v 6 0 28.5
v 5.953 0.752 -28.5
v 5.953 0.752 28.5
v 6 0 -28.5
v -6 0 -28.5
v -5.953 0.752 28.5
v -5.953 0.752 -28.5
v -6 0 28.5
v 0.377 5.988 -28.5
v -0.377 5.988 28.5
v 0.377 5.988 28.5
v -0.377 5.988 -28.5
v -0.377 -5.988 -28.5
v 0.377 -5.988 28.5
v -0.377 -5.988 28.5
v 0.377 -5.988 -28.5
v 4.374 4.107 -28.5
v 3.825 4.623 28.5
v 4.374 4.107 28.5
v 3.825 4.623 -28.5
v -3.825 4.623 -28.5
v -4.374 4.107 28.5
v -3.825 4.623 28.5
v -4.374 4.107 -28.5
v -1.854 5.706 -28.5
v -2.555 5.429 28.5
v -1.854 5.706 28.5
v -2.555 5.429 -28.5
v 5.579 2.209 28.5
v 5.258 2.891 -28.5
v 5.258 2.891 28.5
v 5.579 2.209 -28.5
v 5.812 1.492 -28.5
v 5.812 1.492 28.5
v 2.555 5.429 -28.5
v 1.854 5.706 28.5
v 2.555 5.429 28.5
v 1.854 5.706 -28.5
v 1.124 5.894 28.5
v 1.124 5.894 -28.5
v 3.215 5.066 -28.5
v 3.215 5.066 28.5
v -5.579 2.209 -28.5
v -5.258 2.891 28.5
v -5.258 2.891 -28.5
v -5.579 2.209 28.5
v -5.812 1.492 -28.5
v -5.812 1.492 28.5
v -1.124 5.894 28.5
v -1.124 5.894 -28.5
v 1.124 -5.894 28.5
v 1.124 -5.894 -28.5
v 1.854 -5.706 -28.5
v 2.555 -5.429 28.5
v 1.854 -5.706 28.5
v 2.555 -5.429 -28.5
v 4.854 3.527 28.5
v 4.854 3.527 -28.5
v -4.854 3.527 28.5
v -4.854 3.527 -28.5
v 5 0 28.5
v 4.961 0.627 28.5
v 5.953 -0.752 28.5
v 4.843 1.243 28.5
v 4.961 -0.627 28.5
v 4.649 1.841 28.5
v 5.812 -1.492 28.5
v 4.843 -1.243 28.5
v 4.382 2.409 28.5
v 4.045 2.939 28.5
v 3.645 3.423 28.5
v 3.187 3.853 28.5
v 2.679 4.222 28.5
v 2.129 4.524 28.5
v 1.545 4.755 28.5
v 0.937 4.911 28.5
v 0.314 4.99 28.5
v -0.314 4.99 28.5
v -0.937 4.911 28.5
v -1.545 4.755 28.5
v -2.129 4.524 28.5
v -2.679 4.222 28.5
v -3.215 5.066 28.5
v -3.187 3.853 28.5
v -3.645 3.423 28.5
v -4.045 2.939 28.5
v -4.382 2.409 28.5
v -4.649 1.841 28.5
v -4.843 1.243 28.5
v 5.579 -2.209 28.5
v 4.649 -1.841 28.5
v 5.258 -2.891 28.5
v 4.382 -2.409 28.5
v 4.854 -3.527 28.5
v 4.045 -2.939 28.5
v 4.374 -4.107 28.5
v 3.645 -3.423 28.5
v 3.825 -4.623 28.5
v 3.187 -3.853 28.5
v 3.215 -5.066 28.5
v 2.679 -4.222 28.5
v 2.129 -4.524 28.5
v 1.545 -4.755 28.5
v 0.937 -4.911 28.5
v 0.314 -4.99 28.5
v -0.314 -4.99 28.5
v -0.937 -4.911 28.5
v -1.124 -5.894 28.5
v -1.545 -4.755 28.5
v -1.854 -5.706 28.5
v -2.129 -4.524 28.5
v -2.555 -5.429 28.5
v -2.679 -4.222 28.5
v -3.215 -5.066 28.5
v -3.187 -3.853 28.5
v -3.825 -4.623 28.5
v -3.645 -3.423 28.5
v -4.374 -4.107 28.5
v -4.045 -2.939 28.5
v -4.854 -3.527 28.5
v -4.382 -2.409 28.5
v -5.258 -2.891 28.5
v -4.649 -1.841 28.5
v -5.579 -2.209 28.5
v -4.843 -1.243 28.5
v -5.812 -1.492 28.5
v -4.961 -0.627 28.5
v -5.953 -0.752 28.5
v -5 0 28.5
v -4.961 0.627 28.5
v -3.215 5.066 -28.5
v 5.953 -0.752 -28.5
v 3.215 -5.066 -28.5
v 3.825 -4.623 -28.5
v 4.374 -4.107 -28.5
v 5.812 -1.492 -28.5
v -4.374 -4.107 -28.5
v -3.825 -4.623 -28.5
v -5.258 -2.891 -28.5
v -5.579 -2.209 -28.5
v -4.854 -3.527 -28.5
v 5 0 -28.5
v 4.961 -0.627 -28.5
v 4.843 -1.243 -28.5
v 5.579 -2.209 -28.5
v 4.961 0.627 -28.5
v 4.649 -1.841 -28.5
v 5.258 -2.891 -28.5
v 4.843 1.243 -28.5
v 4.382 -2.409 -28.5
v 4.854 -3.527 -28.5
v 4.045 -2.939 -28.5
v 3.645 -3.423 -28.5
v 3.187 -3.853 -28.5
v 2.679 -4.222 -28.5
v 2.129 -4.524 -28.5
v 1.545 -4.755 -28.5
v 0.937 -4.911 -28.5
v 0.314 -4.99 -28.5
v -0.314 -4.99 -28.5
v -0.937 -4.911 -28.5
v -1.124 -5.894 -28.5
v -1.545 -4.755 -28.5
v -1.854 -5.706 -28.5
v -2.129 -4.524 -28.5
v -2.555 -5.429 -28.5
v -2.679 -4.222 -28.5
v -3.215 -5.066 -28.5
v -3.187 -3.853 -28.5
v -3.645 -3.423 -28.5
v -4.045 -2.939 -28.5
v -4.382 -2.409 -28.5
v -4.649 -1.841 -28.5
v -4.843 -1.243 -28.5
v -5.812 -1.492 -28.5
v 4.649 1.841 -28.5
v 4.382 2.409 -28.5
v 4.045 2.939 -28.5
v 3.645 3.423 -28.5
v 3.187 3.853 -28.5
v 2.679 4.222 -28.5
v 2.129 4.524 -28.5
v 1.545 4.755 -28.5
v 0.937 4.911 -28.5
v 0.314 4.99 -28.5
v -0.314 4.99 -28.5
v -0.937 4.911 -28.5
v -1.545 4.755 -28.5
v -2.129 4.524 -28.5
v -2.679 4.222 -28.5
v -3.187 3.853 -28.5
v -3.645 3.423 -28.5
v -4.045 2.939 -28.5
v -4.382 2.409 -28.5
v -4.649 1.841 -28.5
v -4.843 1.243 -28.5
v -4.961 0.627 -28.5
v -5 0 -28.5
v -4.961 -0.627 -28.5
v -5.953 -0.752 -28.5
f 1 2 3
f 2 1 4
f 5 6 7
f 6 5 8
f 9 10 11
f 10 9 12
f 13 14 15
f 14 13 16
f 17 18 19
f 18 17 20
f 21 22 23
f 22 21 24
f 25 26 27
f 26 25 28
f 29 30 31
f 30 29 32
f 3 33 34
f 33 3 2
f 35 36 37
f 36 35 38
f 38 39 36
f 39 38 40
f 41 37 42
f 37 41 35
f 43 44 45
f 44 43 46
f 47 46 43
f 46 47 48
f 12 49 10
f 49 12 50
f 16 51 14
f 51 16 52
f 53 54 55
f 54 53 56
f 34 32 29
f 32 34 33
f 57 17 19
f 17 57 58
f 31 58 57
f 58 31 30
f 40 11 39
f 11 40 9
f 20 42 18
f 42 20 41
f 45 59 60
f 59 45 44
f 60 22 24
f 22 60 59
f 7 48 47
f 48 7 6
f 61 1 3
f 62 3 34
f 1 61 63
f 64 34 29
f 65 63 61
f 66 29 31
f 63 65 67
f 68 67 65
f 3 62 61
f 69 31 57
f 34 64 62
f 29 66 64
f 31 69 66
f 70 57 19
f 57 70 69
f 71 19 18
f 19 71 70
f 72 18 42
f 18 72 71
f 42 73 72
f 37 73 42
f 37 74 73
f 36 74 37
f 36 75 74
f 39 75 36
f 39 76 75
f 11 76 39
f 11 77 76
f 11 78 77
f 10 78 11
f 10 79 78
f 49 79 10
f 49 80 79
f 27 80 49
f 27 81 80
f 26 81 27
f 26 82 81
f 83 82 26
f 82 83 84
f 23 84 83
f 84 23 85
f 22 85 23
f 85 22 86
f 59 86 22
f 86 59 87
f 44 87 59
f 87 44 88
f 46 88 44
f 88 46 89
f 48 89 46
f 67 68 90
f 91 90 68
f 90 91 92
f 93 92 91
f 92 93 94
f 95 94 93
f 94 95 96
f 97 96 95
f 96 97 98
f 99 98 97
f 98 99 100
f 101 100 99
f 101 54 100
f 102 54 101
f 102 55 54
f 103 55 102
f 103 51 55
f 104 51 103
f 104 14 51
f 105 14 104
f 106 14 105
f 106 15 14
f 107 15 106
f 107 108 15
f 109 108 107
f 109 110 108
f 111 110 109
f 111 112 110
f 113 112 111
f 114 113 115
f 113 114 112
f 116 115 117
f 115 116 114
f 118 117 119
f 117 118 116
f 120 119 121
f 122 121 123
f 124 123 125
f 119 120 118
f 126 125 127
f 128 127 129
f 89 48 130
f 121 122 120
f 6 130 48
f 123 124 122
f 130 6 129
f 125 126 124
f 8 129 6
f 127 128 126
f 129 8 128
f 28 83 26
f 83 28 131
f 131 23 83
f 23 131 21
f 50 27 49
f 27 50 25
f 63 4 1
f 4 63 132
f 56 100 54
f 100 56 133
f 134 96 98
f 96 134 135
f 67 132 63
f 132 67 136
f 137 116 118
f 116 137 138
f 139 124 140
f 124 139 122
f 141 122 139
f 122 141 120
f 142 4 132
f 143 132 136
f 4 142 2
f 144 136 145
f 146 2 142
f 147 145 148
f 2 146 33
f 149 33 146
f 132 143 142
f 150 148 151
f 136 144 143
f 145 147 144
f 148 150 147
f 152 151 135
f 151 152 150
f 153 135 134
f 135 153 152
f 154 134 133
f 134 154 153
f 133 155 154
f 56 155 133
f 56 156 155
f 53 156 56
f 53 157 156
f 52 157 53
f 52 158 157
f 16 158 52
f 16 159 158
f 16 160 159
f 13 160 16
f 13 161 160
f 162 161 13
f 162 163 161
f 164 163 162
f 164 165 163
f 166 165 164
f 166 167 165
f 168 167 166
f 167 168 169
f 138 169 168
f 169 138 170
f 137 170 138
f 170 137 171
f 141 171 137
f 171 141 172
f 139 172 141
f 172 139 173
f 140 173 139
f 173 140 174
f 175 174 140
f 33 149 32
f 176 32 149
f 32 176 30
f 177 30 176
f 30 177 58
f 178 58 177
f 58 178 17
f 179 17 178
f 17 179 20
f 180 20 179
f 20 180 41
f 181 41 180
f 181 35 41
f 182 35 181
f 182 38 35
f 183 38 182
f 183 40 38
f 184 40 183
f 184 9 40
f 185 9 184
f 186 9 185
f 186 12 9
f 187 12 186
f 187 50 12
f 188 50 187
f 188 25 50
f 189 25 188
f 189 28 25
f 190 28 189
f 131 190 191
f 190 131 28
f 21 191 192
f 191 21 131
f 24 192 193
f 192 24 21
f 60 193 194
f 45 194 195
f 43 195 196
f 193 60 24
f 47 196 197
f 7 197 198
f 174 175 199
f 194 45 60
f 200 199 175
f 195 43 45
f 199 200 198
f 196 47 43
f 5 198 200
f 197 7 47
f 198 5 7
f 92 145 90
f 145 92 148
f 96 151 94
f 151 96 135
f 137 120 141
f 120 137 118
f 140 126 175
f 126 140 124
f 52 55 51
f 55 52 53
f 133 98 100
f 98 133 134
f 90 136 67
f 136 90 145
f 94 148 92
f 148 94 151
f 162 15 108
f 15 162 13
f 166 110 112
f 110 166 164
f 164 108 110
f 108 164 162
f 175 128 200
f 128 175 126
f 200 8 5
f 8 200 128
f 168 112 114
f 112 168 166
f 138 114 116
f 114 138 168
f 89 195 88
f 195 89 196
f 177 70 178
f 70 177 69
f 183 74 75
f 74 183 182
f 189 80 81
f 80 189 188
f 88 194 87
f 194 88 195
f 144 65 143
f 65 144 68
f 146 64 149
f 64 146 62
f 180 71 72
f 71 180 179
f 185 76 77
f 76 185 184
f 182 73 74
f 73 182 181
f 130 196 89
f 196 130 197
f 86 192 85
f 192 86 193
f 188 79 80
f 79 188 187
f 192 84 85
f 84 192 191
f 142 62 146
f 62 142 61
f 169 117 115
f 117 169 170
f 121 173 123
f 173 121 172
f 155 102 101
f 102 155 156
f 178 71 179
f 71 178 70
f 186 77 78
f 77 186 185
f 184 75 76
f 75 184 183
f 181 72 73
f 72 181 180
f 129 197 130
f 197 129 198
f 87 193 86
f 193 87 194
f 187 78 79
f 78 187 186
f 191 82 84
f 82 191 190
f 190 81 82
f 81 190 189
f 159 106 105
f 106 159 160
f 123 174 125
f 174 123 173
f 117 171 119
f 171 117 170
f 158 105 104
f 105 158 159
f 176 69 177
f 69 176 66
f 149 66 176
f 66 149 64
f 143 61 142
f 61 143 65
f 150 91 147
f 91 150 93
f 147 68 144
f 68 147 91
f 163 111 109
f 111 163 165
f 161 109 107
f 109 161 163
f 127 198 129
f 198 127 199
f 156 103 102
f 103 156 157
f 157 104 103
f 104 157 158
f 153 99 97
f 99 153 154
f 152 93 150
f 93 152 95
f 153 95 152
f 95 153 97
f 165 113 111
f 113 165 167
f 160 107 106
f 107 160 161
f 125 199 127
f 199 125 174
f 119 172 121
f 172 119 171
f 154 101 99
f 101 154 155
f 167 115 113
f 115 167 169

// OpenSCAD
$fn = 50;


difference() {
	union() {
		translate(v = [0, 0, -28.5000000000]) {
			cylinder(h = 57, r = 6.0000000000);
		}
	}
	union() {
		translate(v = [0, 0, -100.0000000000]) {
			cylinder(h = 200, r = 5);
		}
	}
}
